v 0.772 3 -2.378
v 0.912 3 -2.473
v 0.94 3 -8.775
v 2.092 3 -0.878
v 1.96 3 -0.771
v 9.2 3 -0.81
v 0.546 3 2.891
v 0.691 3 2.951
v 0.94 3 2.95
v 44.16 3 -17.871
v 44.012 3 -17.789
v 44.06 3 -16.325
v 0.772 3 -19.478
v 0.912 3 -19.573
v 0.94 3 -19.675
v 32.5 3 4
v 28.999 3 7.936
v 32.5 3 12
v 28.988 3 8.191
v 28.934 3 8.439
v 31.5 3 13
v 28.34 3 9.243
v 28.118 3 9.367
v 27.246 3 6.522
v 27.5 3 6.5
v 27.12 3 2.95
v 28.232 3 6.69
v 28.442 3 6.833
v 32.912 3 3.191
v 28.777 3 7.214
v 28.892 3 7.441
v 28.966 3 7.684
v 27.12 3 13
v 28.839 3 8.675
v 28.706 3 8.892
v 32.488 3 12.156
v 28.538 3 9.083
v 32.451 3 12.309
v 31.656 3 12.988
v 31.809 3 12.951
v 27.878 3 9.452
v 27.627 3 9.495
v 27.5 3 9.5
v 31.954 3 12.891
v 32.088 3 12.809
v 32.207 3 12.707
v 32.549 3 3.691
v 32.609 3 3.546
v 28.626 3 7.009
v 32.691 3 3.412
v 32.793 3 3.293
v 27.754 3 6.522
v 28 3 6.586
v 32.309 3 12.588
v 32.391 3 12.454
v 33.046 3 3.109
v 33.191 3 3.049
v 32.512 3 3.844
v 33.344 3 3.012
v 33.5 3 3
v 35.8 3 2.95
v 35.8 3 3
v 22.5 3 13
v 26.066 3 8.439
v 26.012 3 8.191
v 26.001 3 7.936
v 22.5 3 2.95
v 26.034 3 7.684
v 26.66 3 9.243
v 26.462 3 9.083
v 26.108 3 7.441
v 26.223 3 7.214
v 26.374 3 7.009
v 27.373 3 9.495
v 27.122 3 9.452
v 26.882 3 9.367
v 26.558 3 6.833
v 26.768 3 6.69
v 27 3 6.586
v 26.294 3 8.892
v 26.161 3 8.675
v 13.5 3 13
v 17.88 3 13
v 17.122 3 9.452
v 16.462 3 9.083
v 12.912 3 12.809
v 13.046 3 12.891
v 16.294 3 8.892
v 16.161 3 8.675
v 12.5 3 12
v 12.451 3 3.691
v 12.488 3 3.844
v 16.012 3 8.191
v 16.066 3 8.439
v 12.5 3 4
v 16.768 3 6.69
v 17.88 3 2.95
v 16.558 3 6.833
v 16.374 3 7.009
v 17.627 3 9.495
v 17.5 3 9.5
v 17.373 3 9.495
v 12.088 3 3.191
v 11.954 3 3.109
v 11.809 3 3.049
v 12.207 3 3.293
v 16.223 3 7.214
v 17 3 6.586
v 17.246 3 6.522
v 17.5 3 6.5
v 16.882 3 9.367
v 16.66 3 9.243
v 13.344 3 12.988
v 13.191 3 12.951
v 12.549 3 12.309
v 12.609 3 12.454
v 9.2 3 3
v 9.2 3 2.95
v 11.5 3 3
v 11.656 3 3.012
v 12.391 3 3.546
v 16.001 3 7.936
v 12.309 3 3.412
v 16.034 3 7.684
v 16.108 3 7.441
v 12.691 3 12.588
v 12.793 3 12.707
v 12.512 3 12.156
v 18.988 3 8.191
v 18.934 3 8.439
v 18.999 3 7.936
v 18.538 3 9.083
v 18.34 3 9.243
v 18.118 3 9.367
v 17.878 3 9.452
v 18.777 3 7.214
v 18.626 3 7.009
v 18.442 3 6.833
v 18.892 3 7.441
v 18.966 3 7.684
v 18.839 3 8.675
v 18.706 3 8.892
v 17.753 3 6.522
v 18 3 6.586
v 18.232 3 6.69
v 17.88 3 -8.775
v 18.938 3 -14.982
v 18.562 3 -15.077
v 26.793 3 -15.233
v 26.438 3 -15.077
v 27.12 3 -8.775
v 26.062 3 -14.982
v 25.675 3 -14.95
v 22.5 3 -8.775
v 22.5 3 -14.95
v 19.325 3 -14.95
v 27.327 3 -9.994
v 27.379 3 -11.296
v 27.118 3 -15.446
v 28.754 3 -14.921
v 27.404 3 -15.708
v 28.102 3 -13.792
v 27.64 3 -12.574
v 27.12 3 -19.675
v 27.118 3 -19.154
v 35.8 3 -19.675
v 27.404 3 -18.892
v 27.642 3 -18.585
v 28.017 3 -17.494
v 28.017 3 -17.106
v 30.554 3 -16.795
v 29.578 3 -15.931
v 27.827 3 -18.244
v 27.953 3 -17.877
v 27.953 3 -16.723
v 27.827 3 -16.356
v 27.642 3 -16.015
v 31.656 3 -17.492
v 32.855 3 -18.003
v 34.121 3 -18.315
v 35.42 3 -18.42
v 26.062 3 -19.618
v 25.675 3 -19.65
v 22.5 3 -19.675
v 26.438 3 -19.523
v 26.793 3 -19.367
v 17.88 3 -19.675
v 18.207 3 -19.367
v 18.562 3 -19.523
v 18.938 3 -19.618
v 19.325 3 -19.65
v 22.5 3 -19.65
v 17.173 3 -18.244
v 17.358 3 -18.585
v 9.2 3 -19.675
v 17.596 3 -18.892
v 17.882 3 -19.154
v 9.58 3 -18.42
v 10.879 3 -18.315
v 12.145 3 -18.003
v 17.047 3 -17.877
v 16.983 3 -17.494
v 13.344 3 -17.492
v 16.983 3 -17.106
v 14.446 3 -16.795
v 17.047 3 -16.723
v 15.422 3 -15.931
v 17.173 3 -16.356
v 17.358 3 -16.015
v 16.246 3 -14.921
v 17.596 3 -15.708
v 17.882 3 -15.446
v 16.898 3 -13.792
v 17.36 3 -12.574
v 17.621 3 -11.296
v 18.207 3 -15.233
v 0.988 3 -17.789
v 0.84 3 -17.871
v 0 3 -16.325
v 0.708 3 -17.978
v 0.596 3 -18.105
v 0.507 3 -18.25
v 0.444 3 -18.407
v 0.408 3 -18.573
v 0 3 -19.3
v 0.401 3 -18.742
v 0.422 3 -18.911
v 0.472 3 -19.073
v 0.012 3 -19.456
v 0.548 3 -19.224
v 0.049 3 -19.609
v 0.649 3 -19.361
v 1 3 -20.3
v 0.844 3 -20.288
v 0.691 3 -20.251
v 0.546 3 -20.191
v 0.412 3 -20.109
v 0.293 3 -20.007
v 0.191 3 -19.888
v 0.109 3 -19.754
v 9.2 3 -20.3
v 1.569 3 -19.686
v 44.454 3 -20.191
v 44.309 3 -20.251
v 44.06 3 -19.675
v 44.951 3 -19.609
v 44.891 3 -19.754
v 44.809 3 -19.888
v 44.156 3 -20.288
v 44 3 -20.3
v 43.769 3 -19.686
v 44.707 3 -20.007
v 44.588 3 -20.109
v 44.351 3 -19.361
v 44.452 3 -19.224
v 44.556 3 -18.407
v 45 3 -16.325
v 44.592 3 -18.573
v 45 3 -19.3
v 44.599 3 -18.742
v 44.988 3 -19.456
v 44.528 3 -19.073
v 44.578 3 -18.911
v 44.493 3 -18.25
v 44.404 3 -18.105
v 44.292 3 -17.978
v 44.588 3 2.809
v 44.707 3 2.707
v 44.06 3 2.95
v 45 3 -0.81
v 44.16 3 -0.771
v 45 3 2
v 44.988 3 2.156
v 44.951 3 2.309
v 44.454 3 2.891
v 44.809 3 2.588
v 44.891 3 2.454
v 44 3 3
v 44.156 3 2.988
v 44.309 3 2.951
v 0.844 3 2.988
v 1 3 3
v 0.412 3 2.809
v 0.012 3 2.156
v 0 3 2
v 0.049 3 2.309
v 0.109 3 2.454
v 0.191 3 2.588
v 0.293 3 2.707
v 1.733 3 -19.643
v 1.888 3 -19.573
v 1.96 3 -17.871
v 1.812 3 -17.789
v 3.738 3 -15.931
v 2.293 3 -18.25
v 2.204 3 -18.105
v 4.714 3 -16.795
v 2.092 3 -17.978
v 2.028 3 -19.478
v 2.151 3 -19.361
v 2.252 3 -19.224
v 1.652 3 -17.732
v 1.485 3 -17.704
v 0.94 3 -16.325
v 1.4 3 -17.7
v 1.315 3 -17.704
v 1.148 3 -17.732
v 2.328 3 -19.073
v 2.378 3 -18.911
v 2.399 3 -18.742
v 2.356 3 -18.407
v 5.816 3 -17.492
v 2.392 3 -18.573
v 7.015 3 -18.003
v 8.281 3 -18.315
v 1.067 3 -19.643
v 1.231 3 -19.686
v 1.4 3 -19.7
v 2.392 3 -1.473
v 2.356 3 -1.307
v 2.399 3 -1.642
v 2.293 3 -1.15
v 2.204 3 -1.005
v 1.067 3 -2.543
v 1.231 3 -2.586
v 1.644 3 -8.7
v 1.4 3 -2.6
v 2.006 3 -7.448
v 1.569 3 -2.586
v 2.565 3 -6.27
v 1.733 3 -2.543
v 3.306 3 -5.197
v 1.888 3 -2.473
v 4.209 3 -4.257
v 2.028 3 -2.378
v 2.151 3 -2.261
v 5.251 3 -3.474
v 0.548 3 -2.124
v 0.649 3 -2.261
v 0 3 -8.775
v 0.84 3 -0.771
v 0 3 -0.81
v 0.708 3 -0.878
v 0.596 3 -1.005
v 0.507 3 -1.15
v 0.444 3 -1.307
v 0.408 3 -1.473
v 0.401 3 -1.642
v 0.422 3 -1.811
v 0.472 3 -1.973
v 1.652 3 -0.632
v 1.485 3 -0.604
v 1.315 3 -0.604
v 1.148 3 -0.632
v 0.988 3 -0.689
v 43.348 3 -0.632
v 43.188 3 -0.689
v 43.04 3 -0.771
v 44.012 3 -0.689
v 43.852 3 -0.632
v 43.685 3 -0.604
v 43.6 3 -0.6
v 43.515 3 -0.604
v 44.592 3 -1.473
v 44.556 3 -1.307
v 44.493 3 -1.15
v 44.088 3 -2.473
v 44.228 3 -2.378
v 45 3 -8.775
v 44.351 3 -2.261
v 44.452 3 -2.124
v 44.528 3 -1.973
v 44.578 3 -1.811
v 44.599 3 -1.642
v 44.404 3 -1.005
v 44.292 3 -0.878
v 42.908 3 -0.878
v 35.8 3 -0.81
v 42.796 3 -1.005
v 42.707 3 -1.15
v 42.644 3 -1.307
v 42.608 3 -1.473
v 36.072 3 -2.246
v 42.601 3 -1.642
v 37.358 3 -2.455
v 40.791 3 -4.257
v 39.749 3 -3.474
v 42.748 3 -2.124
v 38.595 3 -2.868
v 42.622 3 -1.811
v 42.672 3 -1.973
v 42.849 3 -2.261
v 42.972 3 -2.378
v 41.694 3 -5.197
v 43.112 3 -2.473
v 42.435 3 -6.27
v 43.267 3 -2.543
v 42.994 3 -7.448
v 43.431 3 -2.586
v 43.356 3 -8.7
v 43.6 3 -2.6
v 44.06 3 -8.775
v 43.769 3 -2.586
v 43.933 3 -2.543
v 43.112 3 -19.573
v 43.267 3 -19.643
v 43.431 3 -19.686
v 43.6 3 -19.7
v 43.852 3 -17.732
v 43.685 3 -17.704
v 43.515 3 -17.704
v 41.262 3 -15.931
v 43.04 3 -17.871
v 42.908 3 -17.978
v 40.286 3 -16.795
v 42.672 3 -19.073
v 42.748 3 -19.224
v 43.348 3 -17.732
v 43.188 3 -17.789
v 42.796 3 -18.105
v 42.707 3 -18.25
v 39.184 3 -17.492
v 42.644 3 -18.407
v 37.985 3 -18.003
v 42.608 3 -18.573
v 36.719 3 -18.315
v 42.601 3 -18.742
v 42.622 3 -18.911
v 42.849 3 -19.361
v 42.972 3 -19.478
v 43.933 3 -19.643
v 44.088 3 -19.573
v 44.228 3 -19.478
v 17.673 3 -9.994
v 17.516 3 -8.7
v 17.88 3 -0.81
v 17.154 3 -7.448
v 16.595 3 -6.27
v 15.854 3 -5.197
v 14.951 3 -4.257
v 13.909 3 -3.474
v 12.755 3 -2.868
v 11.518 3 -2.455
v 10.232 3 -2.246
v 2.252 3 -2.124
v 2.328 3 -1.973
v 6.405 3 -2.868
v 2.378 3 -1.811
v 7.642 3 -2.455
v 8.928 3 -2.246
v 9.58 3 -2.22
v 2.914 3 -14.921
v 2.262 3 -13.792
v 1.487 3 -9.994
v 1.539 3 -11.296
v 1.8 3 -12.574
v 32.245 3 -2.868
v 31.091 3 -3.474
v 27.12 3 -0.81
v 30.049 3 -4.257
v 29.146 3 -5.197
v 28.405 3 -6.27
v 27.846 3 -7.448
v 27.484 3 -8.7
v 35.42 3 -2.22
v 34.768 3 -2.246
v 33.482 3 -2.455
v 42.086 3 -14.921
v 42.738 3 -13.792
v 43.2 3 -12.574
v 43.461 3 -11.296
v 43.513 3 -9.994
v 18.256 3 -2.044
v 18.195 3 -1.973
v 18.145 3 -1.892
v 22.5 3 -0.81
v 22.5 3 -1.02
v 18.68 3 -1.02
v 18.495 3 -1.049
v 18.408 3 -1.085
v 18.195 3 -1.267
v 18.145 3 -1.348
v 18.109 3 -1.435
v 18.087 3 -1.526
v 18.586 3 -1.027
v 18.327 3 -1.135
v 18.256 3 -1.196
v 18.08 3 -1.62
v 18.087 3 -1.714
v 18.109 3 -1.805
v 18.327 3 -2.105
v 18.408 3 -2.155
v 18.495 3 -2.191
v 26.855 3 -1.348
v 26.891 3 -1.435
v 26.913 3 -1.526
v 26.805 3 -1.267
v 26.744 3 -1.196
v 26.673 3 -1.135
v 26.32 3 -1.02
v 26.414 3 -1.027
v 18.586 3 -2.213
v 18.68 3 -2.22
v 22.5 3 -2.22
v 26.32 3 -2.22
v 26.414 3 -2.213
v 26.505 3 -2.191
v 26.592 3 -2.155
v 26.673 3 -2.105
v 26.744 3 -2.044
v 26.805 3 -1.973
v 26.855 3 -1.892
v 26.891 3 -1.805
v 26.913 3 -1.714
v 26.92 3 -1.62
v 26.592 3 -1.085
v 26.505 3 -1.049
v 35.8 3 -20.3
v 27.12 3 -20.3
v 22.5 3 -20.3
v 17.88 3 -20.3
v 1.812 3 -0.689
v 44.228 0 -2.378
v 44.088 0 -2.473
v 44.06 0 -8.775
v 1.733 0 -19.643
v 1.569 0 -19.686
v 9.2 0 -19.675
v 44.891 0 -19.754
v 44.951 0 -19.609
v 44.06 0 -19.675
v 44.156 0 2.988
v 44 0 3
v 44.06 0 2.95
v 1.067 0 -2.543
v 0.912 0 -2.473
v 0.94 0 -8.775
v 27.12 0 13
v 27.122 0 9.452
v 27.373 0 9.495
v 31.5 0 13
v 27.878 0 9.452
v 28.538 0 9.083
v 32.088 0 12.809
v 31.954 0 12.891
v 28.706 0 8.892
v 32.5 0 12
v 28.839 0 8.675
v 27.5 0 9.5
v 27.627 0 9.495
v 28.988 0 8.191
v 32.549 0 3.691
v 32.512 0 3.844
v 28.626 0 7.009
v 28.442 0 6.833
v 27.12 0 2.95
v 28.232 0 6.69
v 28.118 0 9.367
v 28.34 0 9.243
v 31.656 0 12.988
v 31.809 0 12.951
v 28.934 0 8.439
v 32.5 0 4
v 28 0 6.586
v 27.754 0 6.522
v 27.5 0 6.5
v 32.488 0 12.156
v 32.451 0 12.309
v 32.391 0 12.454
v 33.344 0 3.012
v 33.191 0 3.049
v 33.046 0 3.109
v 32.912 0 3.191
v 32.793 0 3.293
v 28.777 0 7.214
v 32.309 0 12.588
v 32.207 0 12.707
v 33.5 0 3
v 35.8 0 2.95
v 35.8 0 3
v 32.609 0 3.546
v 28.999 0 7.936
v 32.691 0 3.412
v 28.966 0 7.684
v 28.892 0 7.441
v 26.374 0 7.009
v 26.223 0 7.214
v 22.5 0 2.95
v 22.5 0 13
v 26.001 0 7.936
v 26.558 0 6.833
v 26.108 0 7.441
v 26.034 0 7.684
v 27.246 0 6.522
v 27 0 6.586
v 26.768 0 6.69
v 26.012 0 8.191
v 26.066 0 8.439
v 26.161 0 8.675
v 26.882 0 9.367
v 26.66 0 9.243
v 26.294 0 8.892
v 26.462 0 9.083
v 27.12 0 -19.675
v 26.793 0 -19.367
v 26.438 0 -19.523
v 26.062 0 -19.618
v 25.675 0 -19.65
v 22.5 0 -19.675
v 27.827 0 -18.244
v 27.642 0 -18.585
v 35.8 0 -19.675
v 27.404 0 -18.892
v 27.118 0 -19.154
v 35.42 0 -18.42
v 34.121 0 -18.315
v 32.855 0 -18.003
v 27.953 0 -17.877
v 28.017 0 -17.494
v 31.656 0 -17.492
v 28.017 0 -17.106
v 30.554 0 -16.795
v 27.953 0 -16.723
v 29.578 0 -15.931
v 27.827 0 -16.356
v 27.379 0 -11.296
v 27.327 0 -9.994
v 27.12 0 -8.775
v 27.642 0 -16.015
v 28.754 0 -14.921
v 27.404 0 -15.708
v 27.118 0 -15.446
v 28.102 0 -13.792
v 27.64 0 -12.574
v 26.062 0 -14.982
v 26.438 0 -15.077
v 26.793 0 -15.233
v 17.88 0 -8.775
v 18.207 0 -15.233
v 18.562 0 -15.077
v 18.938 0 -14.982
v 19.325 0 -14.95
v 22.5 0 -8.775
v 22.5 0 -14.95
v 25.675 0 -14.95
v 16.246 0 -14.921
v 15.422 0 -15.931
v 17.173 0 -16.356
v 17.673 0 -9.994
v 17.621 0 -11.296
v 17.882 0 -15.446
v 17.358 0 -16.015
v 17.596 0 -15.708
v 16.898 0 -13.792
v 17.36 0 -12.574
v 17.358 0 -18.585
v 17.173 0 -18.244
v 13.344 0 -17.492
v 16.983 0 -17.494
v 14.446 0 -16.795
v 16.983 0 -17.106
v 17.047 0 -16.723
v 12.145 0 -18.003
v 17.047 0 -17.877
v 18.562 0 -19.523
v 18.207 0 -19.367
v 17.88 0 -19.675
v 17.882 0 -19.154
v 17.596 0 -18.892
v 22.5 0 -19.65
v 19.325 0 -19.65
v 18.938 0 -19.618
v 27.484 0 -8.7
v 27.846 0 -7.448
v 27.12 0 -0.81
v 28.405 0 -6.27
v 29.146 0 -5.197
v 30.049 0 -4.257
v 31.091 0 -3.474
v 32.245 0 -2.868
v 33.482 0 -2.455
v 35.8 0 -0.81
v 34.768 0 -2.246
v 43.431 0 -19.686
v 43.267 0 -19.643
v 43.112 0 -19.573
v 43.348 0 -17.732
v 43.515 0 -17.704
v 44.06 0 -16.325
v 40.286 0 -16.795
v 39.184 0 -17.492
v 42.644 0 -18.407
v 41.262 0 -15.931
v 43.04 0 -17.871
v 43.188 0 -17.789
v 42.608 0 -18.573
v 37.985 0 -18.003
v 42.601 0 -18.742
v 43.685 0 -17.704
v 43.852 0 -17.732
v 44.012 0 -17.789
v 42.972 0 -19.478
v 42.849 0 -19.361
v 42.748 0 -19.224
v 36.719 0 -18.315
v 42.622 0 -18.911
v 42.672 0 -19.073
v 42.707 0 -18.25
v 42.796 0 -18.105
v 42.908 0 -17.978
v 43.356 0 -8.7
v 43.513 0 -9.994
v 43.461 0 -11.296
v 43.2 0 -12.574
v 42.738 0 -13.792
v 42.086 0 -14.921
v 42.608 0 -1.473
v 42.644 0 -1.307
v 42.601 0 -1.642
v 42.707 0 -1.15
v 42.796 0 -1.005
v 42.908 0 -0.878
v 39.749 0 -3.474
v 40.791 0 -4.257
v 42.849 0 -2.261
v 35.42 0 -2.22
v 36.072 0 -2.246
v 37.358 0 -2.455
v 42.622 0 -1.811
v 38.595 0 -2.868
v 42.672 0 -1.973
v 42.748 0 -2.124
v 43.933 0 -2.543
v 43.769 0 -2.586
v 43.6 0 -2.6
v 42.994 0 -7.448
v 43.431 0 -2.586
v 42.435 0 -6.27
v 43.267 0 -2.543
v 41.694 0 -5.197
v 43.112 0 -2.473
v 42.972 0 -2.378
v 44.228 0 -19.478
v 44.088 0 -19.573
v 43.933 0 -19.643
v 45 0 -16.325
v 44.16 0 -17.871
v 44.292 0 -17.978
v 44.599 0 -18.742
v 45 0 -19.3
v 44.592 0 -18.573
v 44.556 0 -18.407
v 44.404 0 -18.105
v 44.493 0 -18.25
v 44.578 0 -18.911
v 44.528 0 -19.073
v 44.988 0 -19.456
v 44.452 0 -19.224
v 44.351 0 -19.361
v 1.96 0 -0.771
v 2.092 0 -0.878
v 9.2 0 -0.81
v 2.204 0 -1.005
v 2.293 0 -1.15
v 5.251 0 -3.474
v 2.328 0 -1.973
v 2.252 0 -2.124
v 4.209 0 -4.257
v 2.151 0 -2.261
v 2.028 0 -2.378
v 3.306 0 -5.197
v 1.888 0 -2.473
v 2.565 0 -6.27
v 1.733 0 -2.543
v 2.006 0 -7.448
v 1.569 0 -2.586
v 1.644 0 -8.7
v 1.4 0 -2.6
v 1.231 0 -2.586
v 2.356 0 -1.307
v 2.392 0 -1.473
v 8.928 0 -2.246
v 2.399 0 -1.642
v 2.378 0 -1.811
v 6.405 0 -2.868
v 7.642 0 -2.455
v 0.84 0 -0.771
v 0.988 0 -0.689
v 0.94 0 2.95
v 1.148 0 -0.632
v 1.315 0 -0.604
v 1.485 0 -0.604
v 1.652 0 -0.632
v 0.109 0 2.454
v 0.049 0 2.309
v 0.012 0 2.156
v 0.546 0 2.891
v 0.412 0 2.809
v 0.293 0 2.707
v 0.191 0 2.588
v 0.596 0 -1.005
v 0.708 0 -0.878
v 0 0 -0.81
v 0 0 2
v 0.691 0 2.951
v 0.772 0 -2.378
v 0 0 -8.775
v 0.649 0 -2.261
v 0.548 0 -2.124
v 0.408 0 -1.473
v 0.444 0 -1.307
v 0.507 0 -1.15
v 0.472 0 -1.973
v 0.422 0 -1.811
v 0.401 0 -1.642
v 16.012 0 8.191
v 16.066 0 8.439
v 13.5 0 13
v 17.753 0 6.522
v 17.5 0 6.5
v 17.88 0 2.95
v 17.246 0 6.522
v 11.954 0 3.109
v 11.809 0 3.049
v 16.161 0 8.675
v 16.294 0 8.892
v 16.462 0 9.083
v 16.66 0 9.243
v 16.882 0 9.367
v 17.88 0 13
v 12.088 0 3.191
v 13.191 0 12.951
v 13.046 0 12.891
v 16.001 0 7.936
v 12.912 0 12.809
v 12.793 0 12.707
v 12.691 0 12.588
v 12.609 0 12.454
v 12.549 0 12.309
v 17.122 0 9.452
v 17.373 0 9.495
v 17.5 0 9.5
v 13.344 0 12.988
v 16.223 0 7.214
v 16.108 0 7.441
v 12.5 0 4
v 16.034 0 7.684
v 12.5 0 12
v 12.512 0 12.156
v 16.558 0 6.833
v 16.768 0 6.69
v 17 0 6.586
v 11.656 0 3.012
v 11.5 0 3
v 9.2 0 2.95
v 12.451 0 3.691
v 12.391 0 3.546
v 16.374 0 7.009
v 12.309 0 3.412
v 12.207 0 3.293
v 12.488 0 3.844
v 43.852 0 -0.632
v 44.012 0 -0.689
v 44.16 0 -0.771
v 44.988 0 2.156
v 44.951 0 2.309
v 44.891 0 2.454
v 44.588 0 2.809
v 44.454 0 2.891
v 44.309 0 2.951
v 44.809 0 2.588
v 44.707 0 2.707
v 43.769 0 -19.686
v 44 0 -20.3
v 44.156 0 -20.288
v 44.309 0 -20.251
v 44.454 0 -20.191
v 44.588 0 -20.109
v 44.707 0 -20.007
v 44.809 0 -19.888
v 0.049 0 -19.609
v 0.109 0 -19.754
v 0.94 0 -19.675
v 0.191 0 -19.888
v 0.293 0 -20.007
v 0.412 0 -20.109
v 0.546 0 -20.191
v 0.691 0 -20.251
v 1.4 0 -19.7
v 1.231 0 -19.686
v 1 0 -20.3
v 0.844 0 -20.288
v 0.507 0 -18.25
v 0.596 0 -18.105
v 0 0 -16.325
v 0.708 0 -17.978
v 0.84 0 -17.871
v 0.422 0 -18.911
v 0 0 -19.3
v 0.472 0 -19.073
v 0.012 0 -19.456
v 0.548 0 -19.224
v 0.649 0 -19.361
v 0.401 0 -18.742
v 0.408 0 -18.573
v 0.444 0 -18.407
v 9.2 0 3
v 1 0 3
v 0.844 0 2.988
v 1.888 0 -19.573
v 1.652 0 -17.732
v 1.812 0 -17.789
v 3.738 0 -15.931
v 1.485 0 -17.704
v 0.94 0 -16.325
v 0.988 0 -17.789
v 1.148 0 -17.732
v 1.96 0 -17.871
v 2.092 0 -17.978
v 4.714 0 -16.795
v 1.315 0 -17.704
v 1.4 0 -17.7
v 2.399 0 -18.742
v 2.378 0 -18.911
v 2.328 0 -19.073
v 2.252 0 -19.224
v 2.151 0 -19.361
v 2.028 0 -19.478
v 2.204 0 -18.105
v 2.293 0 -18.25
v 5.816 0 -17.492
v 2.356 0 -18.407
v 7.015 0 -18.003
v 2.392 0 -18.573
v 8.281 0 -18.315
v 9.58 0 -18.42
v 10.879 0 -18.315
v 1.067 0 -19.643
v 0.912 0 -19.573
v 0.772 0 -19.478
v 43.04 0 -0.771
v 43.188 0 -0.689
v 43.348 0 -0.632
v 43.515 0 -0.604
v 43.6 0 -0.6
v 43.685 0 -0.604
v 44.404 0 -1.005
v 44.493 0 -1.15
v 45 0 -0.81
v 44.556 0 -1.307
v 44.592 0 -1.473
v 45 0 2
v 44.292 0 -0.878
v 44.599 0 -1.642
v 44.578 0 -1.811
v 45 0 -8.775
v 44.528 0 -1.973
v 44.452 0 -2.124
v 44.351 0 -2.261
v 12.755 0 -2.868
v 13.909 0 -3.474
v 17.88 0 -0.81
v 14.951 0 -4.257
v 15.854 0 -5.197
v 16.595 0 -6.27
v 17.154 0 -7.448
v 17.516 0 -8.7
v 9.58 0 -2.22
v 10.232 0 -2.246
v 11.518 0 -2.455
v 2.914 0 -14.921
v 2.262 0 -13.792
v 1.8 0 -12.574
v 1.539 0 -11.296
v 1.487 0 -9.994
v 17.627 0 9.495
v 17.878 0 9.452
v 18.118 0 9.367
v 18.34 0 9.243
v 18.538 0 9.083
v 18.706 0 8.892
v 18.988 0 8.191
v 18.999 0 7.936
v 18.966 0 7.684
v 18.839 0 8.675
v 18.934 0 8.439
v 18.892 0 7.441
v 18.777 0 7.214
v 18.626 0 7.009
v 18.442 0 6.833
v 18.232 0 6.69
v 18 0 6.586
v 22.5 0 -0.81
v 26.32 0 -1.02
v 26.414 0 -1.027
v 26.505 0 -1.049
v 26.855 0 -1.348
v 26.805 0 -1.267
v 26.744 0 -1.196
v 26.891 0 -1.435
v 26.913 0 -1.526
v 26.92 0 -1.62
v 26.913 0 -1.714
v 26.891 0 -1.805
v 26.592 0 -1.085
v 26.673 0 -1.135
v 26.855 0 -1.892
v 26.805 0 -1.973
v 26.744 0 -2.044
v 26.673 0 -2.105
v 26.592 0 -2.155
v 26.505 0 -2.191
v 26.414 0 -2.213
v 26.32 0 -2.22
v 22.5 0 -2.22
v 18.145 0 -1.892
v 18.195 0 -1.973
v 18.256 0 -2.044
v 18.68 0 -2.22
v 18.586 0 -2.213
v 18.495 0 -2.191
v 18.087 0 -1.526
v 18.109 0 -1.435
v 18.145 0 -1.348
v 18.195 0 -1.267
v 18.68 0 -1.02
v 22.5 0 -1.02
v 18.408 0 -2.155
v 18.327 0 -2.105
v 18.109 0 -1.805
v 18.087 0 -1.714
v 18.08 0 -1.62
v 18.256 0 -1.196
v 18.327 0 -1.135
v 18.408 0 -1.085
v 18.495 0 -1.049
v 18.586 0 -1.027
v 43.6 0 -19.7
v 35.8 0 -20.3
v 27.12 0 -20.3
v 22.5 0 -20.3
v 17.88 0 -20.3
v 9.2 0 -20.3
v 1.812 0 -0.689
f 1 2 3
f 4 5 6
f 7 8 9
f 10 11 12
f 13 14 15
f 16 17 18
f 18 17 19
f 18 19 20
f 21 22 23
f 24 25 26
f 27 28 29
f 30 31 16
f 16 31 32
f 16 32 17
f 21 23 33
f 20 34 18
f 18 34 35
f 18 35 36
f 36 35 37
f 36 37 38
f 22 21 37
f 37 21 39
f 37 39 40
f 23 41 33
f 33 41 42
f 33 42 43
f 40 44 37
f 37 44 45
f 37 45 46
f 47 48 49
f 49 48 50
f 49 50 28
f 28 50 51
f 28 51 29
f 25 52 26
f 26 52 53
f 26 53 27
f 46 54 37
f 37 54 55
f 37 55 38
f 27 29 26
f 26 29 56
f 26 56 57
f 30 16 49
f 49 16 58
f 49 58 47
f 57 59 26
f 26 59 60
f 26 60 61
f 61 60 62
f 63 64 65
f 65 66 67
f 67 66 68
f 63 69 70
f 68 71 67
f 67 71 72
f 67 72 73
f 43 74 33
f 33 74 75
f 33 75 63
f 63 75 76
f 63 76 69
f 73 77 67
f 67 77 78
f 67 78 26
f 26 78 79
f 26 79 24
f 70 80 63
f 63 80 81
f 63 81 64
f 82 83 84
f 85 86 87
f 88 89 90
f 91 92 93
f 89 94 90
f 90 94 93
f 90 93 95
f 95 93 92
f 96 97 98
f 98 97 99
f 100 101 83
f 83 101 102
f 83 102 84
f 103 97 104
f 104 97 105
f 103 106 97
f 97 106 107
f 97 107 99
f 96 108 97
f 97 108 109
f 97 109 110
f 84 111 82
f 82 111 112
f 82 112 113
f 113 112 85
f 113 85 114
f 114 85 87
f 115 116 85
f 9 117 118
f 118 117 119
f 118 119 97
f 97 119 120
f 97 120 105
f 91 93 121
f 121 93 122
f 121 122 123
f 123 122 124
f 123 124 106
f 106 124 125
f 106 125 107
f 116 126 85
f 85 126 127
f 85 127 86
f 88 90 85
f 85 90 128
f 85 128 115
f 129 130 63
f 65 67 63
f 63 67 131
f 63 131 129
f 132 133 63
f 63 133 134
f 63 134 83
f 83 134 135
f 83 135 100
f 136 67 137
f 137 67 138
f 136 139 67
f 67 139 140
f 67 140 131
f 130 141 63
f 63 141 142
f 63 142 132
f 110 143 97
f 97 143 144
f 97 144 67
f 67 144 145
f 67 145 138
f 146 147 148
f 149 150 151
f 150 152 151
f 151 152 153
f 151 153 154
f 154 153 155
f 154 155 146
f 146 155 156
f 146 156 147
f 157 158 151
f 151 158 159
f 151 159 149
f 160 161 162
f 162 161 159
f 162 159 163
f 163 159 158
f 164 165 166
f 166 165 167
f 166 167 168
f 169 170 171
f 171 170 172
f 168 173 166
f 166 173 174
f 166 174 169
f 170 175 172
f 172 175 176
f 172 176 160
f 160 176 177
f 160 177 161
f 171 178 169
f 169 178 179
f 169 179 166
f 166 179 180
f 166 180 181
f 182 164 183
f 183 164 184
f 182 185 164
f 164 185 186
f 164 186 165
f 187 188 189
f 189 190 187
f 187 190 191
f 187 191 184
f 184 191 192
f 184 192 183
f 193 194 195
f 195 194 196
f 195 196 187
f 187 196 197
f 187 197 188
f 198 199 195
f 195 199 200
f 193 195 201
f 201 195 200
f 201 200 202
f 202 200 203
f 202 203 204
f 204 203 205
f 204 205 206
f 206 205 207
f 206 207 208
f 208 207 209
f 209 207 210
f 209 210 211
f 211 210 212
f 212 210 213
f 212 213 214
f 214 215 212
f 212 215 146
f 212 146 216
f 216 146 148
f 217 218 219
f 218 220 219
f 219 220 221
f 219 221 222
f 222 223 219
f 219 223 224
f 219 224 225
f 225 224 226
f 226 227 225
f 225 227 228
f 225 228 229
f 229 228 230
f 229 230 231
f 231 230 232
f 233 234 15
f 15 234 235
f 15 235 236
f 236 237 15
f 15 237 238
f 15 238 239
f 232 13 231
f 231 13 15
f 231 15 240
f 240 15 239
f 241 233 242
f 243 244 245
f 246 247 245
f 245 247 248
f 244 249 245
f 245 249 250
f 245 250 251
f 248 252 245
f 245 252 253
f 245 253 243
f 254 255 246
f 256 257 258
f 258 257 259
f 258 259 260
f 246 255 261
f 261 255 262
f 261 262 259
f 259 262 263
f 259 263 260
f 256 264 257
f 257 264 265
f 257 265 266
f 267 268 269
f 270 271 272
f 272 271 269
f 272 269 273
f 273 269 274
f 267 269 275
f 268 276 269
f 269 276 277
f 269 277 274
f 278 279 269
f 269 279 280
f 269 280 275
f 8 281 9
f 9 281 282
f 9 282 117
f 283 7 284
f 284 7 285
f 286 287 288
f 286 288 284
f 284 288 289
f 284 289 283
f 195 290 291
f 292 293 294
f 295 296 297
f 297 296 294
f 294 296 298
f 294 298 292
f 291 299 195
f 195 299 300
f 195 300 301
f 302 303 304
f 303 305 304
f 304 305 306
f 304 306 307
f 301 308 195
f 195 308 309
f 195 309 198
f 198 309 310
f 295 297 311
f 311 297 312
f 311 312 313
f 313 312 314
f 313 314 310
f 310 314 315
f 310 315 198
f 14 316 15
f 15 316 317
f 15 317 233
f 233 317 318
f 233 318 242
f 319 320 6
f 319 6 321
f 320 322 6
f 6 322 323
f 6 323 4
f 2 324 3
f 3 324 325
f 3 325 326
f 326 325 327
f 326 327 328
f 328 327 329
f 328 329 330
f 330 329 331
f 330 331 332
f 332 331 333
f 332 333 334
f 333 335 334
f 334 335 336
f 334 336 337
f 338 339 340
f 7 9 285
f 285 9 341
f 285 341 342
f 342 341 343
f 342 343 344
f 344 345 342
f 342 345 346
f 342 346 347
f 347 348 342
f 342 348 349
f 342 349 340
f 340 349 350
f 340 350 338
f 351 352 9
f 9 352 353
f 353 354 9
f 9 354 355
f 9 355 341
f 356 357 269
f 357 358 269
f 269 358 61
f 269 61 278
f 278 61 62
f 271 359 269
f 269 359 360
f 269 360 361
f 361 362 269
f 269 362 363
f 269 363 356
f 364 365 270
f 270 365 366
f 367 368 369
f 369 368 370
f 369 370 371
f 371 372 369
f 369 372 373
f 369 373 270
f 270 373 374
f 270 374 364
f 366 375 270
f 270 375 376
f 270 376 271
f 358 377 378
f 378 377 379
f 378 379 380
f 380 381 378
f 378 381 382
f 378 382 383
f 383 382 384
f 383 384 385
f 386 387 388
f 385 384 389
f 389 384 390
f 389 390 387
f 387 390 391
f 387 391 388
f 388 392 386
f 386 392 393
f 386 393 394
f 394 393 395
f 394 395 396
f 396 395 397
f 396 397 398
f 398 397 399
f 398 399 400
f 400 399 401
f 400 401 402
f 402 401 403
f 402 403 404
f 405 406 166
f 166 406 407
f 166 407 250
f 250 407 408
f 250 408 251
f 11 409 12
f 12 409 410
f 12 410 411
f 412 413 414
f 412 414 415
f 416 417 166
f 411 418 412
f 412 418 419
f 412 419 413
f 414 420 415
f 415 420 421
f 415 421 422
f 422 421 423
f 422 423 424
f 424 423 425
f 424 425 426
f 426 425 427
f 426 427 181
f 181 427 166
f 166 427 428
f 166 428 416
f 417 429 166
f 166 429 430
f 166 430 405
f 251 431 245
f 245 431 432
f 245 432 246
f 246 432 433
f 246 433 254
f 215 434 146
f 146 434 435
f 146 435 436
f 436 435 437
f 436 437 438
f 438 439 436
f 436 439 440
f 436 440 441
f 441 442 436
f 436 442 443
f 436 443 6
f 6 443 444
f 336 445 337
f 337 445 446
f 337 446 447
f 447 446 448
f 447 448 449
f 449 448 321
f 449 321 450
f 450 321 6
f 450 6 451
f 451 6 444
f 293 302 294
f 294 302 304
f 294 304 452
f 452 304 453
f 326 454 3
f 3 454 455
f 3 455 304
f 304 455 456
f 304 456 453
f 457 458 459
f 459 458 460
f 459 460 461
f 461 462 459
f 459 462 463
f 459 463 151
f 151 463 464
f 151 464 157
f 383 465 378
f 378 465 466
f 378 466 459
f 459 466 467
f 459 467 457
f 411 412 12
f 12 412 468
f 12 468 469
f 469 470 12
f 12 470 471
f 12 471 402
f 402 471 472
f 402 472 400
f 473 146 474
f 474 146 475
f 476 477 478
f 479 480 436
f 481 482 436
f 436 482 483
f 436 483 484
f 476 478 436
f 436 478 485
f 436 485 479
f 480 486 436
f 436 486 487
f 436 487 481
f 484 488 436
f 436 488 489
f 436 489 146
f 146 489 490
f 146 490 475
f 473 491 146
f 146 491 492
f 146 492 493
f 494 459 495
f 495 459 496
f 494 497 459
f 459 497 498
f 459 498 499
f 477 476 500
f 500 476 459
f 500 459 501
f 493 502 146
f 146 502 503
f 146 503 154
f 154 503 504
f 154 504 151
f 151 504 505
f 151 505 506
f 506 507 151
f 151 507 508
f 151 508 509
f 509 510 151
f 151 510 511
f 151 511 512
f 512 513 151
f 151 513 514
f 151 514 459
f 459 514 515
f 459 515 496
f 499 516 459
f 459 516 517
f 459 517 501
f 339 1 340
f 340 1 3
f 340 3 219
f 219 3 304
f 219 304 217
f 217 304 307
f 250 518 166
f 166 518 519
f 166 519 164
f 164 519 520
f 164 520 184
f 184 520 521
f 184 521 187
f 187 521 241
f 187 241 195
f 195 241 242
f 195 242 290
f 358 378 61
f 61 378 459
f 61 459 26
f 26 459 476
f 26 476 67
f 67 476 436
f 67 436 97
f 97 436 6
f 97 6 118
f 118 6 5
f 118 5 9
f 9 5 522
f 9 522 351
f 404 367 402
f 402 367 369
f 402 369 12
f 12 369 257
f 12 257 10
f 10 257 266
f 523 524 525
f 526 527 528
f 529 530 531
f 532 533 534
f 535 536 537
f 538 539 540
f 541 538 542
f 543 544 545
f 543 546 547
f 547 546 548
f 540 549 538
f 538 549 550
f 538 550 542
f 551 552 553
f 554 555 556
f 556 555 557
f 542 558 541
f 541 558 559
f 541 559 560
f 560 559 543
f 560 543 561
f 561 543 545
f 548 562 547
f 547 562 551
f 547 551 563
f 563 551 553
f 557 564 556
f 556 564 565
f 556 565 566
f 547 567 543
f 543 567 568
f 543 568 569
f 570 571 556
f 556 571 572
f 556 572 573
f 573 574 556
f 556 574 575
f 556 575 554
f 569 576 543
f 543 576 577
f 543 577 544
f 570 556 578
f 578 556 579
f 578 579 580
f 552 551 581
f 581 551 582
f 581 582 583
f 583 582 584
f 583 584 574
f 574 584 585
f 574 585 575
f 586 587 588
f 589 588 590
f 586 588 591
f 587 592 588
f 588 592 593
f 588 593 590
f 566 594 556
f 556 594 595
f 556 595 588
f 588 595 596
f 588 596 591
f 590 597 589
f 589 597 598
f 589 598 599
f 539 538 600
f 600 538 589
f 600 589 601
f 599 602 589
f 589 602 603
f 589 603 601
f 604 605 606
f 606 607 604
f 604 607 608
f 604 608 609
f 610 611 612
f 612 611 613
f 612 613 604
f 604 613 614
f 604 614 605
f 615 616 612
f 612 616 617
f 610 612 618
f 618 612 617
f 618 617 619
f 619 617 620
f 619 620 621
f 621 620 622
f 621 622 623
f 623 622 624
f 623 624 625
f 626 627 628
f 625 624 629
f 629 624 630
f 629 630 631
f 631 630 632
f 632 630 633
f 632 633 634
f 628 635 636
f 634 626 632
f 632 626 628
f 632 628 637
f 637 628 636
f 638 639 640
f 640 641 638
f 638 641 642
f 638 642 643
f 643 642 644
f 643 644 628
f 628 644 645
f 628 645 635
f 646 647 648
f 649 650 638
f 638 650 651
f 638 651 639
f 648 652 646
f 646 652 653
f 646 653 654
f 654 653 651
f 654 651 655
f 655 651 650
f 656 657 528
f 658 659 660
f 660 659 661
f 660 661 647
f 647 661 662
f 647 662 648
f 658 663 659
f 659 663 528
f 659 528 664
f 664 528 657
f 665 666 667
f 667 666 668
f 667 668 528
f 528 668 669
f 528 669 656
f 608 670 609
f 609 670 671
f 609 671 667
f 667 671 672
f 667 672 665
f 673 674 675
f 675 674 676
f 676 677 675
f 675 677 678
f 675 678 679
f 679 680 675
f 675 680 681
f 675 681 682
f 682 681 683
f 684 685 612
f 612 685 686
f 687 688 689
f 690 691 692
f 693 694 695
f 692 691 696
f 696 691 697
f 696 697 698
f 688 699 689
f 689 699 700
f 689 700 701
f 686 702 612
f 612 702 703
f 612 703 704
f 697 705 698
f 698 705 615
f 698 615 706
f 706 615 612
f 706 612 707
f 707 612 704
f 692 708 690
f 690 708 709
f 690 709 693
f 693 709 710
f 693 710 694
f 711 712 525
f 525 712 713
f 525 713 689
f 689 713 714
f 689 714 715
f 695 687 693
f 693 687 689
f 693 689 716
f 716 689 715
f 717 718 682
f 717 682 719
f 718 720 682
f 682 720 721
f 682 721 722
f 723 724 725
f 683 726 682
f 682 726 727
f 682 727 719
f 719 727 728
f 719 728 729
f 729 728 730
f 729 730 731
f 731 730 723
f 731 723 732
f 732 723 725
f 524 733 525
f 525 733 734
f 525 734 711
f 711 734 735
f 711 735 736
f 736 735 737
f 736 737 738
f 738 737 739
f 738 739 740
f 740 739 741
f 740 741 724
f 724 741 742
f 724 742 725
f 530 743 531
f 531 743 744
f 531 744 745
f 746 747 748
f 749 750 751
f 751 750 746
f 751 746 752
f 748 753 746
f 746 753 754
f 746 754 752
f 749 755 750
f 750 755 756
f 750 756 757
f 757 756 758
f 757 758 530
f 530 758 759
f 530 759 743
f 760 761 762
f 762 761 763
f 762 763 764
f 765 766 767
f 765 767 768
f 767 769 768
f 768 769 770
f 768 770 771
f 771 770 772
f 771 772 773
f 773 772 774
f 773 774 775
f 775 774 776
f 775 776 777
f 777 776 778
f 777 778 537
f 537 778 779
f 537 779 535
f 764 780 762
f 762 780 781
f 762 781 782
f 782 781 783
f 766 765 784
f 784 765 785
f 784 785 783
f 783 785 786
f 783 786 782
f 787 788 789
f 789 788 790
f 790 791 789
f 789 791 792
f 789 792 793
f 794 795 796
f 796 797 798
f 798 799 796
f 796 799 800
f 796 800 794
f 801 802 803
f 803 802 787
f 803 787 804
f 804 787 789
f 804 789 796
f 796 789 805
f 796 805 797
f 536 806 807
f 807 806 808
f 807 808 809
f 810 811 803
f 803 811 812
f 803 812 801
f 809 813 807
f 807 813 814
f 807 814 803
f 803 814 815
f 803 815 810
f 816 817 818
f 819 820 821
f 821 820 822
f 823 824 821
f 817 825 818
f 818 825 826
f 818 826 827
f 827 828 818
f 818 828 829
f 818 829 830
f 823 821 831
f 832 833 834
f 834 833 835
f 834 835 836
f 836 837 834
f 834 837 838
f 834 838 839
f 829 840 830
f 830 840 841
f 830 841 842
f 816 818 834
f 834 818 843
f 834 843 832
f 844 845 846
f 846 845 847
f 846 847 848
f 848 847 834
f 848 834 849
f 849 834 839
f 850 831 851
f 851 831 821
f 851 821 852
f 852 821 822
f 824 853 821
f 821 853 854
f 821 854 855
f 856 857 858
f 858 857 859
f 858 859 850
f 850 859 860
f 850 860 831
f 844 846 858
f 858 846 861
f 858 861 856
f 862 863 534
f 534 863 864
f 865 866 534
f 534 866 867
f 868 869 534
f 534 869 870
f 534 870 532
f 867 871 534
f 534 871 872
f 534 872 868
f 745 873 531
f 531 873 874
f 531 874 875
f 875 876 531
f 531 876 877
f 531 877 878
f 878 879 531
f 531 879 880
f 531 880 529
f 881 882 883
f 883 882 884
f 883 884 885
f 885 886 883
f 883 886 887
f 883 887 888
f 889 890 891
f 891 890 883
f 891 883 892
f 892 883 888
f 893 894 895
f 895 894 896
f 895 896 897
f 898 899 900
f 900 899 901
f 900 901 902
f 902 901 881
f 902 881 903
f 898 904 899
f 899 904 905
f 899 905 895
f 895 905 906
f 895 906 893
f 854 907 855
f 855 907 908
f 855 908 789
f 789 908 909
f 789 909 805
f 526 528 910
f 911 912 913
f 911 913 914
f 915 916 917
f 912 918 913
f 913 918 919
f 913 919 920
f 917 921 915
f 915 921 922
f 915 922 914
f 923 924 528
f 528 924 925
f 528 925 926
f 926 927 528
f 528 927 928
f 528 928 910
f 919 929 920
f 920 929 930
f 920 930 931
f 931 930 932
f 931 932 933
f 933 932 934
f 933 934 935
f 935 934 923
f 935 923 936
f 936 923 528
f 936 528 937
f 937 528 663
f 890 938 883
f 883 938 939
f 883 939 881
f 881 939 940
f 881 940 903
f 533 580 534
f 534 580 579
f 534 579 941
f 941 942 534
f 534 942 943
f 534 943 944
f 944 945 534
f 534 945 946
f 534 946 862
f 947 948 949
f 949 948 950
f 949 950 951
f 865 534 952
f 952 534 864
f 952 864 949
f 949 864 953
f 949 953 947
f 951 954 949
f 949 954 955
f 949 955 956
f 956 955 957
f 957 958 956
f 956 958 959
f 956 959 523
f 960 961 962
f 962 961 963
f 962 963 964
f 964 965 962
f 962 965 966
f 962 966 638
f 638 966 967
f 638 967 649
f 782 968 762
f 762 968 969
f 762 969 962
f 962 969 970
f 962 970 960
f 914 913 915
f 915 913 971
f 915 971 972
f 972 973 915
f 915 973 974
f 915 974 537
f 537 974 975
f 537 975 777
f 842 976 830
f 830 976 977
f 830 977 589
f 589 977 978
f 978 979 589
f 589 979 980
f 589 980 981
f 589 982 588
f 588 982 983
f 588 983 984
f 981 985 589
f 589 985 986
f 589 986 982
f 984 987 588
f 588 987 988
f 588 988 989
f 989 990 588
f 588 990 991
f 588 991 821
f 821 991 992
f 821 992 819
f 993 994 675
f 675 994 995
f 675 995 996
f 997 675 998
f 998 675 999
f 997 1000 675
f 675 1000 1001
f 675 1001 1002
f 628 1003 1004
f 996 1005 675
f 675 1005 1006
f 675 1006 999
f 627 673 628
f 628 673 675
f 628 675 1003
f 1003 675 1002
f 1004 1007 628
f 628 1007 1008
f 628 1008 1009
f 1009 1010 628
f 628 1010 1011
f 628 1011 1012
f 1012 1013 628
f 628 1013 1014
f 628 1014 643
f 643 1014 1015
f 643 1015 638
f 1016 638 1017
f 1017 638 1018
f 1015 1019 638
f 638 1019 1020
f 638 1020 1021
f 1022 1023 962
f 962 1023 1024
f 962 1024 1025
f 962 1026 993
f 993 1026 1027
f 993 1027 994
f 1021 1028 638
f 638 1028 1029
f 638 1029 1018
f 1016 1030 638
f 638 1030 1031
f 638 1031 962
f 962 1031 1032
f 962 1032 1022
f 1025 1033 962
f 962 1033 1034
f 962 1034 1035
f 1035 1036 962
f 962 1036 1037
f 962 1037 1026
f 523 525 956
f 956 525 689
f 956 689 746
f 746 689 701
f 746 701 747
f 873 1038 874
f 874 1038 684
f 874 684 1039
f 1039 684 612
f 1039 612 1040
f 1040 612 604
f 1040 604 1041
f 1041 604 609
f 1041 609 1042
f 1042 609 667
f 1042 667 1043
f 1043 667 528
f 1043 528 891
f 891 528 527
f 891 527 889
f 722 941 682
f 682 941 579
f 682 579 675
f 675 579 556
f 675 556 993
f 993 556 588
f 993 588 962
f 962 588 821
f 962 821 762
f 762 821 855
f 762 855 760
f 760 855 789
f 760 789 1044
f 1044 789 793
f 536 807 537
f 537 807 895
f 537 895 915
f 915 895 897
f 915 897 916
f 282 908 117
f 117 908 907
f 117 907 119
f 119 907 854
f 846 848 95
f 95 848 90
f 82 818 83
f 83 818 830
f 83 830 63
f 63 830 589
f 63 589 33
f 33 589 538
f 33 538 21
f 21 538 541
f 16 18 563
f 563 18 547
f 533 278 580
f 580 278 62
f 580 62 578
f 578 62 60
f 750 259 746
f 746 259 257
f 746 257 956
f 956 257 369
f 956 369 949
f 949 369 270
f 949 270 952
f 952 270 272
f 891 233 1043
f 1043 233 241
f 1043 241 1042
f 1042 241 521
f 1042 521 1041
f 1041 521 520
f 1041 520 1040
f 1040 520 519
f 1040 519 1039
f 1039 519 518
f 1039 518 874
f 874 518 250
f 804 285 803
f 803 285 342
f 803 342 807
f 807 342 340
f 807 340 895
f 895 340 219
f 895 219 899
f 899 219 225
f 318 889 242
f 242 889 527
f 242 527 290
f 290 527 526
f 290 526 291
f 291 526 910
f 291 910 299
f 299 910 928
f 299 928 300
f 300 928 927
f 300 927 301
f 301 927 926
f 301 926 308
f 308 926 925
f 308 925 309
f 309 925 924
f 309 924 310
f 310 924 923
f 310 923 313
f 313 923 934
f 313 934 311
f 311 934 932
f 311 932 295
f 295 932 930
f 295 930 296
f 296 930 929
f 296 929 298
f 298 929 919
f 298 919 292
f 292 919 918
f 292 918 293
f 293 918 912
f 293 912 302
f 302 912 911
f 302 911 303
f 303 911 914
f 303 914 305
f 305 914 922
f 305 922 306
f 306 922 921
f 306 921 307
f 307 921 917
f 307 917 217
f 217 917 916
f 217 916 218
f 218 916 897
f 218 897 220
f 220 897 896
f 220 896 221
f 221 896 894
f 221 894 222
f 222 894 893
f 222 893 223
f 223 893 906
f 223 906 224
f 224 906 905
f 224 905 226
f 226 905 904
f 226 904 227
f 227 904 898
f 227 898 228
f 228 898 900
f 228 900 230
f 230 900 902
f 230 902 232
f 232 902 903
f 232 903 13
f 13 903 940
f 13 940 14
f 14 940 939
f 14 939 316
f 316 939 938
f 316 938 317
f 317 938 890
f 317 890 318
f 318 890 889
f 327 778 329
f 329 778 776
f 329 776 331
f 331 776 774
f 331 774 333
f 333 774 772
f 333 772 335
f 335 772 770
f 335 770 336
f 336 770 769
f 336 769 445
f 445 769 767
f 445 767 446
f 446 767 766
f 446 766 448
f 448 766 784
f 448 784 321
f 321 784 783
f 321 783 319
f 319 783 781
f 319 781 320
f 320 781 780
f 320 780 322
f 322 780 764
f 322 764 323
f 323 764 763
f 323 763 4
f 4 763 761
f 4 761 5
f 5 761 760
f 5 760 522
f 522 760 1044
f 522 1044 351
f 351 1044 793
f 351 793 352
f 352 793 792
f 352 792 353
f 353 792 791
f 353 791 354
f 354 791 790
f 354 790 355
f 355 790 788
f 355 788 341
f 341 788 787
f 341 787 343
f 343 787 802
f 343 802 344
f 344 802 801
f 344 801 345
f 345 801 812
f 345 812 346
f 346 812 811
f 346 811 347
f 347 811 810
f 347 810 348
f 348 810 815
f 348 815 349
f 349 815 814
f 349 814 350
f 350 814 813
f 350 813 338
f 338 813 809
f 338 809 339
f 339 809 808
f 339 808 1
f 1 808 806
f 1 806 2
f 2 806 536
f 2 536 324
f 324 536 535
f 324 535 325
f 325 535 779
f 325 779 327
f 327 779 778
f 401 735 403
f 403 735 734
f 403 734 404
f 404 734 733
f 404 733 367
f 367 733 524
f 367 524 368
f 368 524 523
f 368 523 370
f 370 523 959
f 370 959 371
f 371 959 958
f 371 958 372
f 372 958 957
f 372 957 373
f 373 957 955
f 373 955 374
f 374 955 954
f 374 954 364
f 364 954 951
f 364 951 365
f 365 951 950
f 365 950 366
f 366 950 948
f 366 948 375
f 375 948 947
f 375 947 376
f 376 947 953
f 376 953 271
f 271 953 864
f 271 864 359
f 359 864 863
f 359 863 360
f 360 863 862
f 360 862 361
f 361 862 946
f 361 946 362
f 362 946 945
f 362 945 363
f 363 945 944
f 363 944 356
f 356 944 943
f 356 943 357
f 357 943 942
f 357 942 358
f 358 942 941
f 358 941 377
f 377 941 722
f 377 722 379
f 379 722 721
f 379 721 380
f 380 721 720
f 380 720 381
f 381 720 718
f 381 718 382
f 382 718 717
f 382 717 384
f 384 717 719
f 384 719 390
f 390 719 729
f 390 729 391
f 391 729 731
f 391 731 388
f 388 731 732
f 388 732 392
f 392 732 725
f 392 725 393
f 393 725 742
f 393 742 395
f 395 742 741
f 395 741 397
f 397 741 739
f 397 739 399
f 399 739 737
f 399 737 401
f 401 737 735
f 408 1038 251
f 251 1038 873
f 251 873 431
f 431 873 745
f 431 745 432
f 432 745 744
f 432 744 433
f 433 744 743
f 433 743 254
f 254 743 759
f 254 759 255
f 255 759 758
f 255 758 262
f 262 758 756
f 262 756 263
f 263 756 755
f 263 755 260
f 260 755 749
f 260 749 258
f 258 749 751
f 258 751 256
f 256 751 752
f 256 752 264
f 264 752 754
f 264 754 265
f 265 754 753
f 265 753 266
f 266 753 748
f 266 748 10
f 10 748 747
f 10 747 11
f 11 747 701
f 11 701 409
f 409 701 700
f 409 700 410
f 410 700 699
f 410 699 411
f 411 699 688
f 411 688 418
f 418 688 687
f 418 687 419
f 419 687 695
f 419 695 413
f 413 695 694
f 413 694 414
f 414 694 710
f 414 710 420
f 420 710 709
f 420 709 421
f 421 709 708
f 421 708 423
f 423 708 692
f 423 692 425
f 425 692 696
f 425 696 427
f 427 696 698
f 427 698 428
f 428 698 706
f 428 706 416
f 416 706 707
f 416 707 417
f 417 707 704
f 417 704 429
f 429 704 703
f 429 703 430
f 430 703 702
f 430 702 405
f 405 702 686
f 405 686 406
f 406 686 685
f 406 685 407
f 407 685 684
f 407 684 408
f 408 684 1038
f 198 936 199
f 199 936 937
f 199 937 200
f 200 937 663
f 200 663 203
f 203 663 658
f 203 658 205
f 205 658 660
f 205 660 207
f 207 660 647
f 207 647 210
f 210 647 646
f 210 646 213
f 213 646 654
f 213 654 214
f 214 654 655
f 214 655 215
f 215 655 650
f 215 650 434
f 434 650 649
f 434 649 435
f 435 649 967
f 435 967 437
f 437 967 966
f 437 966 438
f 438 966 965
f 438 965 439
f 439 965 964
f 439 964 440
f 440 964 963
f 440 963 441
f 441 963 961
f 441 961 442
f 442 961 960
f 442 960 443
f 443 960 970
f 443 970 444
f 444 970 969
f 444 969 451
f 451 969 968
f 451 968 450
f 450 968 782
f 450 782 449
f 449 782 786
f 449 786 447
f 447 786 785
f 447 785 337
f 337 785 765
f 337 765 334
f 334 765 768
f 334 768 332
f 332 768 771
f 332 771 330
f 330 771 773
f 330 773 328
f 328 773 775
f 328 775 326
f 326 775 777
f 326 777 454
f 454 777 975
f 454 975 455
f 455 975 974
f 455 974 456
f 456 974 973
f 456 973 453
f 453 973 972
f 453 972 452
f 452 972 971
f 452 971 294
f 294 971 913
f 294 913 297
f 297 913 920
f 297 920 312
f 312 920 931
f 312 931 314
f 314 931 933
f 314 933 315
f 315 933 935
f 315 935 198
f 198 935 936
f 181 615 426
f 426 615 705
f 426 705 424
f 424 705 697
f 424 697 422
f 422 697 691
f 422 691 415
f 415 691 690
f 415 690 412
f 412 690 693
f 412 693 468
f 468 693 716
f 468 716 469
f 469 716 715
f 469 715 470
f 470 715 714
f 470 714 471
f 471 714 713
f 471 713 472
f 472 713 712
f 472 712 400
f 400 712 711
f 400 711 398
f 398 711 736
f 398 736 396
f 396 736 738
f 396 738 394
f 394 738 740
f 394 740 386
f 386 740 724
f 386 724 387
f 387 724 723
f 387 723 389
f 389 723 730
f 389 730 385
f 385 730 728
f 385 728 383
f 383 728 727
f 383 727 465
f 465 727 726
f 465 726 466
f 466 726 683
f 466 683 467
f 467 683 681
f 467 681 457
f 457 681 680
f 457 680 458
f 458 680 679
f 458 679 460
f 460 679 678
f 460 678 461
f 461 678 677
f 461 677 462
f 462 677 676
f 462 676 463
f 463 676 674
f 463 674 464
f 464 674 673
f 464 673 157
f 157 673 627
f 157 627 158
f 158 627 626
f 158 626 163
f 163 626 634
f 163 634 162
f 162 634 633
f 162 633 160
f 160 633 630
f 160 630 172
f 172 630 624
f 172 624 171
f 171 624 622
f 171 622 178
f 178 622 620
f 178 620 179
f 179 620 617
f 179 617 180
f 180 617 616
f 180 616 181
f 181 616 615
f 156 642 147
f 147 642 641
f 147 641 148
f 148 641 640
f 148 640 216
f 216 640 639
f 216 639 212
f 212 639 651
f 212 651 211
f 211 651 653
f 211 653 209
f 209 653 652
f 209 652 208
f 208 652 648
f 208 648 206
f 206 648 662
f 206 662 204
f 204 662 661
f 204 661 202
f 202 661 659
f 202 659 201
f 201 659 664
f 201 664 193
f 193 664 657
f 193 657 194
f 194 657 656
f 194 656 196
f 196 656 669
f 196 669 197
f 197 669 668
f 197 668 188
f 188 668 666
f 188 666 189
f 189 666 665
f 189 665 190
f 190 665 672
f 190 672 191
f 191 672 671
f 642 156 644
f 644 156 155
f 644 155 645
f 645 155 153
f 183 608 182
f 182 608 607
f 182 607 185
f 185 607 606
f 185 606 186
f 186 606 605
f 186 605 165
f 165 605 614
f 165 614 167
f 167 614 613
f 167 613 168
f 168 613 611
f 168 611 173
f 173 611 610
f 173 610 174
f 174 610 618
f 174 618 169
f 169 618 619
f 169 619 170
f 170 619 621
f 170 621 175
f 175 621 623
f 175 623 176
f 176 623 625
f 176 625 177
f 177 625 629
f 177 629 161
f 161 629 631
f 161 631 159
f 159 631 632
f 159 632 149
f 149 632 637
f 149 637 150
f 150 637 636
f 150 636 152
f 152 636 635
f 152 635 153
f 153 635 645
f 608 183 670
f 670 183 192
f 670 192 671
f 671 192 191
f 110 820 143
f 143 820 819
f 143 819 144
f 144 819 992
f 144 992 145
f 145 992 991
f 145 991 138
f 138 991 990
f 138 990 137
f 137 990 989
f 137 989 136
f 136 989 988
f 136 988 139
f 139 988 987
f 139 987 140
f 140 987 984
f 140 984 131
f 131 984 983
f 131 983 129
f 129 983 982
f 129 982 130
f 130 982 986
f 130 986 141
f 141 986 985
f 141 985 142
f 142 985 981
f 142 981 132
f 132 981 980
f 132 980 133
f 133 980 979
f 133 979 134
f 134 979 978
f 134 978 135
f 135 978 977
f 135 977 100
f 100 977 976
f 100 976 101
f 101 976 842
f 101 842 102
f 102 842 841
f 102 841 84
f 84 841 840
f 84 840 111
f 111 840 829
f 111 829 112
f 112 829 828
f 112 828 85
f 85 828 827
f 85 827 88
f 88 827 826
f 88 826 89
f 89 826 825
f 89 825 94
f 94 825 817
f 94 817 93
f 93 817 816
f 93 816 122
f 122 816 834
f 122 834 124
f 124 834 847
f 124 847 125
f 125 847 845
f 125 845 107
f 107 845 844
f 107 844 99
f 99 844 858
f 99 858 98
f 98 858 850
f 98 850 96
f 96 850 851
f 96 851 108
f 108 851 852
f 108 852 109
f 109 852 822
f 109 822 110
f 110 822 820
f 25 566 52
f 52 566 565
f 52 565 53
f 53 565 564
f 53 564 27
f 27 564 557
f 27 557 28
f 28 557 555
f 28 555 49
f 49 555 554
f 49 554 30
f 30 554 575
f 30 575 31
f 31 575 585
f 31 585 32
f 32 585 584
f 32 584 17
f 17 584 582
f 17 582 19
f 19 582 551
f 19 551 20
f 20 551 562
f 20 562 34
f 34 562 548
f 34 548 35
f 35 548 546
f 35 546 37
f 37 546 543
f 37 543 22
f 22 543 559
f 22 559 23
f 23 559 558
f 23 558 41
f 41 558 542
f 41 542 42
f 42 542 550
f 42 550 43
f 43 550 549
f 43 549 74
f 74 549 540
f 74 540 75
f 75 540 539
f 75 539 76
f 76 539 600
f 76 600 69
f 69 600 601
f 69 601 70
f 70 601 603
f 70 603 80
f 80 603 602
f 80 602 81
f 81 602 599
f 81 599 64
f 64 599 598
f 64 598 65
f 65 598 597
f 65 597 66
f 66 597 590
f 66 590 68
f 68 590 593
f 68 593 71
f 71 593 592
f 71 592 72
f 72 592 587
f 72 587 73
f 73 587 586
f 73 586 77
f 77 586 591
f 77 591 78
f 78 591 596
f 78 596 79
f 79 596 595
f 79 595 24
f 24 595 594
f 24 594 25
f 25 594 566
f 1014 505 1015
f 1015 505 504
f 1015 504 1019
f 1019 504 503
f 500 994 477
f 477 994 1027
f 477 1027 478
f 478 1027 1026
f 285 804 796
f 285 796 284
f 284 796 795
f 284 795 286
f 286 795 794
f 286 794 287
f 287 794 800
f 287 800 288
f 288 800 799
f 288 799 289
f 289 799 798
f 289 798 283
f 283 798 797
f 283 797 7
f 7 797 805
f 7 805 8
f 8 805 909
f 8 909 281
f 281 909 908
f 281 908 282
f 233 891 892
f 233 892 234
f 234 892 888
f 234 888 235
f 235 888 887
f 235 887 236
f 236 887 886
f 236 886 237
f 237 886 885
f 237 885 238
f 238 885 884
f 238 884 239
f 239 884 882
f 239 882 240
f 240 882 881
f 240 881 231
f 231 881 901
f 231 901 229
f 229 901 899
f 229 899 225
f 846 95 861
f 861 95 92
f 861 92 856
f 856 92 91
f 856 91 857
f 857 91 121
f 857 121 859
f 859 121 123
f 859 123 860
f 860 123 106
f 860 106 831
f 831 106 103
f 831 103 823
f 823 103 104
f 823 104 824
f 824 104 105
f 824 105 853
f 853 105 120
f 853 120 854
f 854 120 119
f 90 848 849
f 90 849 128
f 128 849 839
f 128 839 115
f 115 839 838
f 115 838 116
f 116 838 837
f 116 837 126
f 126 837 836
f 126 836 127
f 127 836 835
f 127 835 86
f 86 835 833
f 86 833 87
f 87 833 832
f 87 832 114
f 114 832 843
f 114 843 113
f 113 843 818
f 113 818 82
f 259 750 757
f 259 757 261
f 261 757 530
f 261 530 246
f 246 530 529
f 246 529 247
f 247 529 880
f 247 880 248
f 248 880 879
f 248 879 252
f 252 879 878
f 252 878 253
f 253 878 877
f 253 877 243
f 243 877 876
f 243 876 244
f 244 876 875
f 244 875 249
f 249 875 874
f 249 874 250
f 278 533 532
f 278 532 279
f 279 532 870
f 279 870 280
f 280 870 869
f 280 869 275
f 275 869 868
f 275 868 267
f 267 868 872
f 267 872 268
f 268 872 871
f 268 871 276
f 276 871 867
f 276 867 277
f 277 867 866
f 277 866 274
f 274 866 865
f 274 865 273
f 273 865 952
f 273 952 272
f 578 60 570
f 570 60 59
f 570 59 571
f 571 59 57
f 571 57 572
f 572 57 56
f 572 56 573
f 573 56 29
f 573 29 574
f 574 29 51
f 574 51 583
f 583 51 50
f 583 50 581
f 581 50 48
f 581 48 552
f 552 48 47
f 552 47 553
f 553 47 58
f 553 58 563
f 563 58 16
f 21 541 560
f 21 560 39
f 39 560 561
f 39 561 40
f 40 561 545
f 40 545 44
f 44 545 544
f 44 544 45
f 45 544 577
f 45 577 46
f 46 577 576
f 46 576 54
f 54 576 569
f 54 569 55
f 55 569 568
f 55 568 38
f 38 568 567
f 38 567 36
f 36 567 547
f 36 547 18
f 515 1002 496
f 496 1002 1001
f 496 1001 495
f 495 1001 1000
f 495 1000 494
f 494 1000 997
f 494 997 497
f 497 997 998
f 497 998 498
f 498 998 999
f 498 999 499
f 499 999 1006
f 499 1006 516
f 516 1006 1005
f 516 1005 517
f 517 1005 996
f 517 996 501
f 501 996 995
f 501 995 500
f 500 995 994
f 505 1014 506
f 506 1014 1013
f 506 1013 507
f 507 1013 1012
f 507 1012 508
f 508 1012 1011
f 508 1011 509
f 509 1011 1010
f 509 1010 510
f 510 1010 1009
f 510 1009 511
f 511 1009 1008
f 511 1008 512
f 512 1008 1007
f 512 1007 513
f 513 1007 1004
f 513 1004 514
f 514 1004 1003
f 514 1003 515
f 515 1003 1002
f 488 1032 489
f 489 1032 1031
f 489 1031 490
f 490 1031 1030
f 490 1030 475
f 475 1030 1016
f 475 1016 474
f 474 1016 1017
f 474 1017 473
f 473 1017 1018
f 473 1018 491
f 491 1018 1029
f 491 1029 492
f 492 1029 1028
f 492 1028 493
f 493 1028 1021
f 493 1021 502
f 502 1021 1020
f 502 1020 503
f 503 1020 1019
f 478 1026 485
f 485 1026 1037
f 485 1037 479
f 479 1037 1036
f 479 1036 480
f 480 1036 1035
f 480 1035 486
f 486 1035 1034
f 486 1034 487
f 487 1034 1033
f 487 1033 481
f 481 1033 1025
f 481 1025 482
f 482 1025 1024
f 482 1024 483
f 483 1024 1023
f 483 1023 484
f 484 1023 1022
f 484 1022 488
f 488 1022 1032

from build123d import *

# Parameters (mm, degrees)
SKETCH1_R           = 1
SKETCH1_R_2         = 8.1
SKETCH1_R_3         = 1.5
BOSS_EXTRUDE1_DEPTH = 3
SKETCH2_W           = 8.84
SKETCH2_H           = 1.2
CUT_EXTRUDE1_DEPTH  = 3
FILLET1_R           = 1
FILLET4_R           = 0.6


with BuildPart() as part:
    # Sketch1 → Boss-Extrude1 (new body)
    with BuildSketch(Plane(origin=(0, 0, 0), x_dir=(1, 0, 0), z_dir=(0, 1, 0))):
        Polygon((0, 0), (0, 20.3), (45, 20.3), (45, 0), (45, -3), (32.5, -3), (32.5, -13), (12.5, -13), (12.5, -3), (0, -3), align=None)
        with Locations(Location((1.4, 18.7, 0), (0, 0, 270))):
            Circle(SKETCH1_R, mode=Mode.SUBTRACT)
        with Locations(Location((1.4, 1.6, 0), (0, 0, 90))):
            Circle(SKETCH1_R, mode=Mode.SUBTRACT)
        with Locations(Location((43.6, 1.6, 0), (0, 0, 270))):
            Circle(SKETCH1_R, mode=Mode.SUBTRACT)
        with Locations(Location((43.6, 18.7, 0), (0, 0, 90))):
            Circle(SKETCH1_R, mode=Mode.SUBTRACT)
        with Locations(Location((9.58, 10.32, 0), (0, 0, 270))):
            Circle(SKETCH1_R_2, mode=Mode.SUBTRACT)
        with Locations(Location((35.42, 10.32, 0), (0, 0, 270))):
            Circle(SKETCH1_R_2, mode=Mode.SUBTRACT)
        with Locations(Location((17.5, -8, 0), (0, 0, 270))):
            Circle(SKETCH1_R_3, mode=Mode.SUBTRACT)
        with Locations(Location((27.5, -8, 0), (0, 0, 270))):
            Circle(SKETCH1_R_3, mode=Mode.SUBTRACT)
        with BuildLine():
            Line((25.675, 19.65), (19.325, 19.65))
            ThreePointArc((19.325, 19.65), (16.975, 17.3), (19.325, 14.95))
            Line((19.325, 14.95), (25.675, 14.95))
            ThreePointArc((25.675, 14.95), (28.025, 17.3), (25.675, 19.65))
        make_face(mode=Mode.SUBTRACT)
    extrude(amount=BOSS_EXTRUDE1_DEPTH)

    # Sketch2 → Cut-Extrude1 (cut)
    with BuildSketch(Plane(origin=(0, 3, 0), x_dir=(1, 0, 0), z_dir=(0, 1, 0))):
        with Locations((22.5, 1.62)):
            Rectangle(SKETCH2_W, SKETCH2_H)
    extrude(amount=-CUT_EXTRUDE1_DEPTH, mode=Mode.SUBTRACT)

    # Fillet1
    fillet1_edges = [part.edges().sort_by_distance(p)[0] for p in [
        (0, 1.5, -20.3),
        (45, 1.5, -20.3),
        (45, 1.5, 3),
        (32.5, 1.5, 3),
        (32.5, 1.5, 13),
        (12.5, 1.5, 13),
        (12.5, 1.5, 3),
        (0, 1.5, 3),
    ]]
    fillet(fillet1_edges, radius=FILLET1_R)

    # Fillet4
    fillet4_edges = [part.edges().sort_by_distance(p)[0] for p in [
        (26.92, 1.5, -2.22),
        (26.92, 1.5, -1.02),
        (18.08, 1.5, -1.02),
        (18.08, 1.5, -2.22),
    ]]
    fillet(fillet4_edges, radius=FILLET4_R - 0.0001)  # a hair under: the kernel refuses the full size


solid = part.part
